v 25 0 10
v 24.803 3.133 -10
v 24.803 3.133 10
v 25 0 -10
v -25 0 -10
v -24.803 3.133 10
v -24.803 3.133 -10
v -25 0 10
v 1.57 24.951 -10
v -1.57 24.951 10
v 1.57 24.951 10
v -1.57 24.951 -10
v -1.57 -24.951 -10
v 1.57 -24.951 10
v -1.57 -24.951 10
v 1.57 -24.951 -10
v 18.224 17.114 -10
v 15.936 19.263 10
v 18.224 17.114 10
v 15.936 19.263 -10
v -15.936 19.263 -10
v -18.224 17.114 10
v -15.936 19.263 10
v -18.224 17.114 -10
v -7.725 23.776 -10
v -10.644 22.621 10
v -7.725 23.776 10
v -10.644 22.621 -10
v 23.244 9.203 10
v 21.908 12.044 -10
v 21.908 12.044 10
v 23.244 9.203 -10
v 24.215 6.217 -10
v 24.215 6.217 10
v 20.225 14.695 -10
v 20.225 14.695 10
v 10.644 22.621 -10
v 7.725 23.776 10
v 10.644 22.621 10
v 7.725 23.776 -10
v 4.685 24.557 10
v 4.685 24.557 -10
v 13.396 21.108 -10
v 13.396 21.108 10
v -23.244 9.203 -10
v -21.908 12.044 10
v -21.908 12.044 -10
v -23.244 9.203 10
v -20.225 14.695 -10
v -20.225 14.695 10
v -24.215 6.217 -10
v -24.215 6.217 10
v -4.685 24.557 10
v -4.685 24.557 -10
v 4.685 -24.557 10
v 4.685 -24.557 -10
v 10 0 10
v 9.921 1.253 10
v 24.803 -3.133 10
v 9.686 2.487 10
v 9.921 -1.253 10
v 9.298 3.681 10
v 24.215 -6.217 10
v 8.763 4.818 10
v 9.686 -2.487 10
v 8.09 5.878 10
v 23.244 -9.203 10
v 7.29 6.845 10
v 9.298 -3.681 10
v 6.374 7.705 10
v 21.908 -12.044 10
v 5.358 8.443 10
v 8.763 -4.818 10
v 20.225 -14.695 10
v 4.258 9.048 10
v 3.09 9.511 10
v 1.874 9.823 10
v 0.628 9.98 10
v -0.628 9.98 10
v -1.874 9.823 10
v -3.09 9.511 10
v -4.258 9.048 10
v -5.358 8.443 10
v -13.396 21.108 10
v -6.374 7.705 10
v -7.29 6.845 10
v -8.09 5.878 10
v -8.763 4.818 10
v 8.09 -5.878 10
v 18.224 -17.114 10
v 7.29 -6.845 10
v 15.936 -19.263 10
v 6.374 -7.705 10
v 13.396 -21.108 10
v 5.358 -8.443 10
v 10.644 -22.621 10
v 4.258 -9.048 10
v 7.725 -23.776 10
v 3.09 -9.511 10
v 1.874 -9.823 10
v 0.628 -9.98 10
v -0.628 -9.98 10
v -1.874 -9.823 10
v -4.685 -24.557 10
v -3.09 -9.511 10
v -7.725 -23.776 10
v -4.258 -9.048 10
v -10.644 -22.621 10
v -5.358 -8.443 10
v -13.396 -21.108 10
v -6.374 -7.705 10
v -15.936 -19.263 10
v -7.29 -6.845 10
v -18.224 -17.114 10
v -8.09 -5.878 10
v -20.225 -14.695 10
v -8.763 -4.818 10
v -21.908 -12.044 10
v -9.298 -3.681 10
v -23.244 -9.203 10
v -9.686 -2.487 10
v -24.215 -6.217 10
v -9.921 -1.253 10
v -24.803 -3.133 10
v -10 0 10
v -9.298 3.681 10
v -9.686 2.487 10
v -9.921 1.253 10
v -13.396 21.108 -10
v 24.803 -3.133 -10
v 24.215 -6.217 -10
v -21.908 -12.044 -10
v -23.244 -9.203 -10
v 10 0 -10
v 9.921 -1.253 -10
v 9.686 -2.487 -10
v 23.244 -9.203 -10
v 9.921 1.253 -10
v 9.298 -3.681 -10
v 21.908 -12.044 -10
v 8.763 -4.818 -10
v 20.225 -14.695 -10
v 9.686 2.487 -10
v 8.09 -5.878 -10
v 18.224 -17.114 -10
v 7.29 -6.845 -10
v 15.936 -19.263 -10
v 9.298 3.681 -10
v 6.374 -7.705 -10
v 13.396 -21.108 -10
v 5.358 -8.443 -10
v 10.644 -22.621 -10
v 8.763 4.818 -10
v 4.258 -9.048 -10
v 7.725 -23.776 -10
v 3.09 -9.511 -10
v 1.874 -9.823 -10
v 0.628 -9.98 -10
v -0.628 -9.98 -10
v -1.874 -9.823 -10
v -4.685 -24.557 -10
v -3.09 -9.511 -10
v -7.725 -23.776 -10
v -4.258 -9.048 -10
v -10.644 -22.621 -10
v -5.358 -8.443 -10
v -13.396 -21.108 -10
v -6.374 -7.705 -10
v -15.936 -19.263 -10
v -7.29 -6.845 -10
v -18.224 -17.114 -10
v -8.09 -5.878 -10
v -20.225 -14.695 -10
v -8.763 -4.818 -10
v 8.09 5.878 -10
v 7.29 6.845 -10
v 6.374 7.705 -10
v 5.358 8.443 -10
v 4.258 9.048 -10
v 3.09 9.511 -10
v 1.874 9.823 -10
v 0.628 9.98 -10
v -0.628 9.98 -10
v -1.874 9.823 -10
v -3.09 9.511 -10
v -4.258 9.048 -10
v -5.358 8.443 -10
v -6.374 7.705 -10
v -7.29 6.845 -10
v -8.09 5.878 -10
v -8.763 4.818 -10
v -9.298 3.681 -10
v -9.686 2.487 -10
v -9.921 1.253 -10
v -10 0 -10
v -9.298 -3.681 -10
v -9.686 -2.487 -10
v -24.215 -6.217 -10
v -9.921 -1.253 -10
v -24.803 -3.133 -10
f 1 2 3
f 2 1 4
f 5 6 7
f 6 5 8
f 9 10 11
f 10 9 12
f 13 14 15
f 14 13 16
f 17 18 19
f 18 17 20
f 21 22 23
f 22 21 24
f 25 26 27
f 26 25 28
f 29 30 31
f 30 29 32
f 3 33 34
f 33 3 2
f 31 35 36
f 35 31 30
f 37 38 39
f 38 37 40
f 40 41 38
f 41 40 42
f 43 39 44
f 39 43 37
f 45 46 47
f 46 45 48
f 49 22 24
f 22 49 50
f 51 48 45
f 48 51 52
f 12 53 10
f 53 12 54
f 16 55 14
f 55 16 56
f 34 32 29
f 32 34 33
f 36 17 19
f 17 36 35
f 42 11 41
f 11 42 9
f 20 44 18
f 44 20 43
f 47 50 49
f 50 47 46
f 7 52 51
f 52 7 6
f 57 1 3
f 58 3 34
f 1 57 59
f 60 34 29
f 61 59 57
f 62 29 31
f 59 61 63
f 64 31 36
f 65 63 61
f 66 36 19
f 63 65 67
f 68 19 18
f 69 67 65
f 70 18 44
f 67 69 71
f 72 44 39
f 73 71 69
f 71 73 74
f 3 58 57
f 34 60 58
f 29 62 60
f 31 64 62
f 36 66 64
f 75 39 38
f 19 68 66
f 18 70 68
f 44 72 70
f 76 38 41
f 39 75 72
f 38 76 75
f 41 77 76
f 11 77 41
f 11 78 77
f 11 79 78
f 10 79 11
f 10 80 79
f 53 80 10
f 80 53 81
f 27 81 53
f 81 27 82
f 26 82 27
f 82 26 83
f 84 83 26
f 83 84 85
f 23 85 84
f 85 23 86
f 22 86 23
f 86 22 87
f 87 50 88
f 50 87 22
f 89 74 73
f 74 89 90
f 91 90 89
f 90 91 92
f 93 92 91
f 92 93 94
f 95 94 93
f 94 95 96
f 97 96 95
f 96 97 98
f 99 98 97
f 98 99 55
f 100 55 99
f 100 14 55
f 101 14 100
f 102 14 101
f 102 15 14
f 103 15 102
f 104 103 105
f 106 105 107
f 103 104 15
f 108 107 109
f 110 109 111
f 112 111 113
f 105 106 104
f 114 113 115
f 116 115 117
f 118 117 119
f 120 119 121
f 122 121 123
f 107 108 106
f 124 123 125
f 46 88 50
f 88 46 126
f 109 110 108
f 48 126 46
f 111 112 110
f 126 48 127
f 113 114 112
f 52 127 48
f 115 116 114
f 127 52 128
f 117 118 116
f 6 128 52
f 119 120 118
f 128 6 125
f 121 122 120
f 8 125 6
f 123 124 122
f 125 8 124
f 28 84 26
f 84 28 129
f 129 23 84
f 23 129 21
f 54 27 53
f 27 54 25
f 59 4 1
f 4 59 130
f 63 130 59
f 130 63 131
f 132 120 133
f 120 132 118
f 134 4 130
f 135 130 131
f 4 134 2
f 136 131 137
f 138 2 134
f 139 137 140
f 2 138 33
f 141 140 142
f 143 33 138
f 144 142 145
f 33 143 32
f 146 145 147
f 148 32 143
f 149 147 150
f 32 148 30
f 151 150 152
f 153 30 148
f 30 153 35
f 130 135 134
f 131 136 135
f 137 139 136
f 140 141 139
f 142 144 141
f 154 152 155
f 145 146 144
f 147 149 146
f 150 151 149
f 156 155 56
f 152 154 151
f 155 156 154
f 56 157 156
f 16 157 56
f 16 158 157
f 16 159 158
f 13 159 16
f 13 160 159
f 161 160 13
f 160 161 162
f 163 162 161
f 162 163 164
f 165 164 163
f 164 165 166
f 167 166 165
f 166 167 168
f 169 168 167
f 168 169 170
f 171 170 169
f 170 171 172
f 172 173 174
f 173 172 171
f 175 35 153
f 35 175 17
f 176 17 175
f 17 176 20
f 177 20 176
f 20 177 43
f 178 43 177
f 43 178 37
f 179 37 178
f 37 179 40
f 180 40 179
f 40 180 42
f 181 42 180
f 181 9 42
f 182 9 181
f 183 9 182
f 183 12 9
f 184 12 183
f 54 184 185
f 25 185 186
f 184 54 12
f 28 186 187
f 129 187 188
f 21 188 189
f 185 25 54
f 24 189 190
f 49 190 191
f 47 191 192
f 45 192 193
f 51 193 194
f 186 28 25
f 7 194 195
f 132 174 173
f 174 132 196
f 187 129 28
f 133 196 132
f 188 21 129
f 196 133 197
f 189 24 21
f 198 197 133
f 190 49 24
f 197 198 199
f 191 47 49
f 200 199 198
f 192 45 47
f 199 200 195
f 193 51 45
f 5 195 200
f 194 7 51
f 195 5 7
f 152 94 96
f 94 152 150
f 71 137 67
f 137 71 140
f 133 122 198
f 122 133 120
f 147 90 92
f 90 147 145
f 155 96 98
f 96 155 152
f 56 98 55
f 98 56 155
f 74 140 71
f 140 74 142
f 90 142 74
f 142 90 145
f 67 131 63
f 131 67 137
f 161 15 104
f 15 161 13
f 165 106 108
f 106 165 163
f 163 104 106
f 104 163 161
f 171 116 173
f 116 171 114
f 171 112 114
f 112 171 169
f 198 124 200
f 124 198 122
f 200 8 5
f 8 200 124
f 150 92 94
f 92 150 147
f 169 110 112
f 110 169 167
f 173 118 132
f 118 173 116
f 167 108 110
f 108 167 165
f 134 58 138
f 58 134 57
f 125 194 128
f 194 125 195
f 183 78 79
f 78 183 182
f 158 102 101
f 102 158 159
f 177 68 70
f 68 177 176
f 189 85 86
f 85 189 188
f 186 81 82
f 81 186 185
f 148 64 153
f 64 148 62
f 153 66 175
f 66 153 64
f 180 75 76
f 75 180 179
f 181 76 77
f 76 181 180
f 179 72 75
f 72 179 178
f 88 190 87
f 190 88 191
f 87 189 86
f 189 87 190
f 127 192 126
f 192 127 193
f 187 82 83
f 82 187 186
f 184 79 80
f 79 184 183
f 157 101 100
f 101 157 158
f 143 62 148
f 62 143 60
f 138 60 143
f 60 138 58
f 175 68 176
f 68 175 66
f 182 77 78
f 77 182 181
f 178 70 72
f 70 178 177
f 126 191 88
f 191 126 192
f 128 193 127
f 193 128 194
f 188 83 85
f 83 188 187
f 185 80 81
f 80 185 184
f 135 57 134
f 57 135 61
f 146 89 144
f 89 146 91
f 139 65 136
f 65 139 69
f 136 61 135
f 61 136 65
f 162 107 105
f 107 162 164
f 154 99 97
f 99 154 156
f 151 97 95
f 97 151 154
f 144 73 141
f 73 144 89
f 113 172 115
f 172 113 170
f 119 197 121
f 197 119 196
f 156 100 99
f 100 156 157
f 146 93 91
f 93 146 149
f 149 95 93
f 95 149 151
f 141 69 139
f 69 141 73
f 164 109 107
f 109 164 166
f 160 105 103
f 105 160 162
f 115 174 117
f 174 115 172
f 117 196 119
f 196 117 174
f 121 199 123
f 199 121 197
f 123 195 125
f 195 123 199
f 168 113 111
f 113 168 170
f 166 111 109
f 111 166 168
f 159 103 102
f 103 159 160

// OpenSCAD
$fn = 50;


difference() {
	union() {
		translate(v = [0, 0, -10.0000000000]) {
			cylinder(h = 20, r = 25.0000000000);
		}
	}
	union() {
		translate(v = [0, 0, -100.0000000000]) {
			cylinder(h = 200, r = 10);
		}
	}
}
